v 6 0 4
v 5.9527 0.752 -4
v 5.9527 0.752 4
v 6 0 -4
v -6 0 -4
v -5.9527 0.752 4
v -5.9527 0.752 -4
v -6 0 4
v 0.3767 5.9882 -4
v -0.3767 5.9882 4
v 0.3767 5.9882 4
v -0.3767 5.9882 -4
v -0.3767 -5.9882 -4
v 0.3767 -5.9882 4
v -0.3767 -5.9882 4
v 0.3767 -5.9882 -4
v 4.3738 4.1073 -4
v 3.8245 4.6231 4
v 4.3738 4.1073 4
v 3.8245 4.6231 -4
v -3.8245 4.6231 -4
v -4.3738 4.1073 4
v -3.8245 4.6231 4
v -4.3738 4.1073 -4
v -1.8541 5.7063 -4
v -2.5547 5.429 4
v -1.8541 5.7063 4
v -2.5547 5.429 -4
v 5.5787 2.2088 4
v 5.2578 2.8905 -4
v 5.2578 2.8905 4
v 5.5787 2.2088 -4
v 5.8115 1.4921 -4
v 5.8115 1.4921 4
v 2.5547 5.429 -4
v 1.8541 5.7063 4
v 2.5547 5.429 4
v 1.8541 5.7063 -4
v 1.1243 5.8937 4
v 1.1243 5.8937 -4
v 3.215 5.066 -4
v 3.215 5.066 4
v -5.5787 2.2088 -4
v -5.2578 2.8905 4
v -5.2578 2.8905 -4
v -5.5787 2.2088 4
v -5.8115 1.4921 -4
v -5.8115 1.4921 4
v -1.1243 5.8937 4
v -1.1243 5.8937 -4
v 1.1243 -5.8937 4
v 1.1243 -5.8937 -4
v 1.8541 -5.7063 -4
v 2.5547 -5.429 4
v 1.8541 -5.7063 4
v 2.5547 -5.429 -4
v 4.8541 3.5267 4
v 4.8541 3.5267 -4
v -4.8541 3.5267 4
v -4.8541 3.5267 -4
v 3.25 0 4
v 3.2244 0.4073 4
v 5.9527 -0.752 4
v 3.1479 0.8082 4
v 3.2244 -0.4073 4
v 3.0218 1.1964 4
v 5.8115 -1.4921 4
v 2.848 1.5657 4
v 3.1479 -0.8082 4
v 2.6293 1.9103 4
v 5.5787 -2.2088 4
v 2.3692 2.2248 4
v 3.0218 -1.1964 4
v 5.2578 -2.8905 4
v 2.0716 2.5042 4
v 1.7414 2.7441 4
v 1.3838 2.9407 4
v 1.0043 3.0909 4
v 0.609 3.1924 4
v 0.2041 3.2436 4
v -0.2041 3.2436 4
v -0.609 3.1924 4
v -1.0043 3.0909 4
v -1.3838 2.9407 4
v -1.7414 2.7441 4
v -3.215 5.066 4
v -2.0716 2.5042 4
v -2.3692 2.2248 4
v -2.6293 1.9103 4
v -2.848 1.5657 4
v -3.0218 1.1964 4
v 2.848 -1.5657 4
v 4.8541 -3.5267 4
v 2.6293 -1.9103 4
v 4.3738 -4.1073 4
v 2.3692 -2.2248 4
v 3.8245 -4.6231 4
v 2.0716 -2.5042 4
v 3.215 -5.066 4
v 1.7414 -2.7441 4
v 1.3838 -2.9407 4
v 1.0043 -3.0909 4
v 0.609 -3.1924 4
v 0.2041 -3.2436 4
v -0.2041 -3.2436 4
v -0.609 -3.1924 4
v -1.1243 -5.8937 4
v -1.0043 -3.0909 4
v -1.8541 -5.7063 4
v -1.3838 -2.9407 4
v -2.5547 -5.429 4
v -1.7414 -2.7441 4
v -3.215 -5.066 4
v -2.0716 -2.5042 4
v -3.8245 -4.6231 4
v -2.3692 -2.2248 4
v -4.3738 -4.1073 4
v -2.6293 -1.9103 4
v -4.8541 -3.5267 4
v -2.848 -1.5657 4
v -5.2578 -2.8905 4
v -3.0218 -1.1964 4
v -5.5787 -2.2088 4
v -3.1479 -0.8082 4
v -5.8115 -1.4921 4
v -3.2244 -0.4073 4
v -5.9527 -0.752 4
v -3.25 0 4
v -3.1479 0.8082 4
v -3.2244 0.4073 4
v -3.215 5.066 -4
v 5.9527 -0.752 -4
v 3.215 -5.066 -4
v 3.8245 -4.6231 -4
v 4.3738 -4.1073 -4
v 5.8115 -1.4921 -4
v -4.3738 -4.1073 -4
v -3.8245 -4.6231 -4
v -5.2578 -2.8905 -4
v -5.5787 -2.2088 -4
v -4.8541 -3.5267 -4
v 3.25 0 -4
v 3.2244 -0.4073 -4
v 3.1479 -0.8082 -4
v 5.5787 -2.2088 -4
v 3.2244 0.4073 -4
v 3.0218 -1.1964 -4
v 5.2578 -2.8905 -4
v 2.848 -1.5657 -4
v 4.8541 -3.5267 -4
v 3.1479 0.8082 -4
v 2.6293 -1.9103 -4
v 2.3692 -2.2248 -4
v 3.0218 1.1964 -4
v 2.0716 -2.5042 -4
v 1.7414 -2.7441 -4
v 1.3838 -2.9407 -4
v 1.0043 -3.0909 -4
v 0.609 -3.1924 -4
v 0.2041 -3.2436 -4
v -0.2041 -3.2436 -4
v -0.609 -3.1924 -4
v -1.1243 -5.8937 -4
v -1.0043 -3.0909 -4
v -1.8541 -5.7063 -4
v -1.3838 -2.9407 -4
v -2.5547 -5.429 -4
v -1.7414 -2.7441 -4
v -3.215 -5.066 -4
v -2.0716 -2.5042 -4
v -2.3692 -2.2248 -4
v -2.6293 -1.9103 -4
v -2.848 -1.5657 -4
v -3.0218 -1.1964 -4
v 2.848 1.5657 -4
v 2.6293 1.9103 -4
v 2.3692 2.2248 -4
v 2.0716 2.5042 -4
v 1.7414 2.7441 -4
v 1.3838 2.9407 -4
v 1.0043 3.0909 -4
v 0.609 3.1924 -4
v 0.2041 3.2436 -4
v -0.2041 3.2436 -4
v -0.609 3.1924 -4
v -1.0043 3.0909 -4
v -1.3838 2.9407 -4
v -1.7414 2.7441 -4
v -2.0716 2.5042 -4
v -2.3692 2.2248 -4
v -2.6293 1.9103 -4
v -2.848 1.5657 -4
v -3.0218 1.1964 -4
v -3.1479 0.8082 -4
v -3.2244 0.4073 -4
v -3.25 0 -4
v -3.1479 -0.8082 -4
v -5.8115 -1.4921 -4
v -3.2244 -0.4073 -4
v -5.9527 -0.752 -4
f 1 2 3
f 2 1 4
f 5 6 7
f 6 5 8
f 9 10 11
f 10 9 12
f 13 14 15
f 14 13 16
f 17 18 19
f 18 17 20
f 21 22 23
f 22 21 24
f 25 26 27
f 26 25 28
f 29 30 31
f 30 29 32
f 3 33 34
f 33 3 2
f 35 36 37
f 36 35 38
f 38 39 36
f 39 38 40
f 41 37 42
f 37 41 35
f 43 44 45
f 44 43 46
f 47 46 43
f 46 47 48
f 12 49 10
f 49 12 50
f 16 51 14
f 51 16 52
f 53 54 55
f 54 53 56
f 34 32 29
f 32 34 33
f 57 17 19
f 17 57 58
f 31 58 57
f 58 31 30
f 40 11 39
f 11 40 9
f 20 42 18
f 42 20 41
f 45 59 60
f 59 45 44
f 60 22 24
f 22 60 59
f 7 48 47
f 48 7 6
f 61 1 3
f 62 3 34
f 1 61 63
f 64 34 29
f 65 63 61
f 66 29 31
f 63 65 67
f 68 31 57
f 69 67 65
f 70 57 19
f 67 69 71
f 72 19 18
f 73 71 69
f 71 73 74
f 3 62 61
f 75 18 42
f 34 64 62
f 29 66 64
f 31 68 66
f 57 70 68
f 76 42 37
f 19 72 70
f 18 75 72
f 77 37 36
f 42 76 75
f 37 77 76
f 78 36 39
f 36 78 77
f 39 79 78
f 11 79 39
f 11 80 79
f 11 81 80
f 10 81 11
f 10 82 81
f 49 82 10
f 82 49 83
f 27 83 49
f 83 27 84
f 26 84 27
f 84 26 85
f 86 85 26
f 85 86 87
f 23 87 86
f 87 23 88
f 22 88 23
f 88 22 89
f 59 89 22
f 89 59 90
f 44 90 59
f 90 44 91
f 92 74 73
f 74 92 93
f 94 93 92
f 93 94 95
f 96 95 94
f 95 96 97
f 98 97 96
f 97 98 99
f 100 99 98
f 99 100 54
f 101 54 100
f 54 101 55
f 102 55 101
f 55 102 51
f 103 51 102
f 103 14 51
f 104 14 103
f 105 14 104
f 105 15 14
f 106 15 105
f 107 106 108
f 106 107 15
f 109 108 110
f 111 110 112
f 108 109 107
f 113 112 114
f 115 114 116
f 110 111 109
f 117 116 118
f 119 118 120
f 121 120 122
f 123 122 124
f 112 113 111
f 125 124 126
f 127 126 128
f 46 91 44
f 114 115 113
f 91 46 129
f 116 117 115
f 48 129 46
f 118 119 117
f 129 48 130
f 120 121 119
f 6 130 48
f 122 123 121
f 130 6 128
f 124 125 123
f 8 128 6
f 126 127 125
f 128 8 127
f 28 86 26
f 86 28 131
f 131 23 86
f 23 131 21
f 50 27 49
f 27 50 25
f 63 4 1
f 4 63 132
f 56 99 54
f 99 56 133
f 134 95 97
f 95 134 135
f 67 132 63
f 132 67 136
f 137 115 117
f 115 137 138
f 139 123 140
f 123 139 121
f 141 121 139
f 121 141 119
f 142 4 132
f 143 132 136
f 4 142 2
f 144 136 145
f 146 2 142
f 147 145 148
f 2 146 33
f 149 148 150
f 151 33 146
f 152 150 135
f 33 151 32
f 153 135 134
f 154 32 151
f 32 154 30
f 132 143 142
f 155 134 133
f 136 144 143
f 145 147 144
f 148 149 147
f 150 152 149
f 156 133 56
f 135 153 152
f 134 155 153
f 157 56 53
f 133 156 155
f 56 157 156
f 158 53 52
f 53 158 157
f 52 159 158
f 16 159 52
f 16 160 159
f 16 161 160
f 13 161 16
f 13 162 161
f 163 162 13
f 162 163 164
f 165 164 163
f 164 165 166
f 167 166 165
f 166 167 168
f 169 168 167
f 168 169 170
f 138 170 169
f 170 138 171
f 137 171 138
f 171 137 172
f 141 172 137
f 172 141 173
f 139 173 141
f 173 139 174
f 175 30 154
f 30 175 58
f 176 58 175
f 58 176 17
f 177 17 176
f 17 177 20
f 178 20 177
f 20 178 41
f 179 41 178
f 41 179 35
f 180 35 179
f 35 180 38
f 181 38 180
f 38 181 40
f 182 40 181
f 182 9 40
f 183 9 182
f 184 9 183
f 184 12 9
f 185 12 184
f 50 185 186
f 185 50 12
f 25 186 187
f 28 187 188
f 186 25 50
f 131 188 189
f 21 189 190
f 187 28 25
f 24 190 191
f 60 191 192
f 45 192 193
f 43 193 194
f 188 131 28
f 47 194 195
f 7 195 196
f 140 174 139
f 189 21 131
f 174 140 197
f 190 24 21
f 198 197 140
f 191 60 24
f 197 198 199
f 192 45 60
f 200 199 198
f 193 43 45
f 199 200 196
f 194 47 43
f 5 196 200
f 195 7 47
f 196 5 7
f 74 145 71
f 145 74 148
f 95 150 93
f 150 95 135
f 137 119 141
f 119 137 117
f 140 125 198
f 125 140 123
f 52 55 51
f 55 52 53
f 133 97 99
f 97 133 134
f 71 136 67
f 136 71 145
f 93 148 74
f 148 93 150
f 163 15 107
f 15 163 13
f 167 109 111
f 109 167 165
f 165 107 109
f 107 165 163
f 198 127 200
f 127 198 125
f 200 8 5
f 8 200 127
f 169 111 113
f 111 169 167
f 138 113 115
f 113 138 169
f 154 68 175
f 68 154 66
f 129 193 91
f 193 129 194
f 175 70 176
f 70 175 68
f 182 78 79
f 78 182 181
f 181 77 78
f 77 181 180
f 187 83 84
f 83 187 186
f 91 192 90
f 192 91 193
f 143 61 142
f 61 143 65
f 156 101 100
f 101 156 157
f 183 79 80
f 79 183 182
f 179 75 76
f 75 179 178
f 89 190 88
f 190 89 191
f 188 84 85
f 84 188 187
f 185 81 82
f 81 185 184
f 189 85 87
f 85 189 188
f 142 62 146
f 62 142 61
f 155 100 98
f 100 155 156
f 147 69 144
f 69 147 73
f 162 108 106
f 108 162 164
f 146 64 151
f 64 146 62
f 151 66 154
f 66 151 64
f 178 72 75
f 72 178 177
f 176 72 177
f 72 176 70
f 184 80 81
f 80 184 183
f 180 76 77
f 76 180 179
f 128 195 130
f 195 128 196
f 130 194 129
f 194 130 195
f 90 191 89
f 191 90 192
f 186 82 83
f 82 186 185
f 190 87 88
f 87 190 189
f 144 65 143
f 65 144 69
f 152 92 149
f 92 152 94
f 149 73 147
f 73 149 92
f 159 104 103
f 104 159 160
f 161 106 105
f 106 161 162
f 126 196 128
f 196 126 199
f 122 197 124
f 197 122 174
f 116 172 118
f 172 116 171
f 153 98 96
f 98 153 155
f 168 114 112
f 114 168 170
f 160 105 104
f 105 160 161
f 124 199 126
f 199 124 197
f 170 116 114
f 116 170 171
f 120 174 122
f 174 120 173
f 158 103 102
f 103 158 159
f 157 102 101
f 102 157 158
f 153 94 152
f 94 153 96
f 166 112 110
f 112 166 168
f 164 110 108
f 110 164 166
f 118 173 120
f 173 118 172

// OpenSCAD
$fn = 50;


difference() {
	union() {
		translate(v = [0, 0, -4.0000000000]) {
			cylinder(h = 8, r = 6.0000000000);
		}
	}
	union() {
		translate(v = [0, 0, -100.0000000000]) {
			cylinder(h = 200, r = 3.2500000000);
		}
	}
}
